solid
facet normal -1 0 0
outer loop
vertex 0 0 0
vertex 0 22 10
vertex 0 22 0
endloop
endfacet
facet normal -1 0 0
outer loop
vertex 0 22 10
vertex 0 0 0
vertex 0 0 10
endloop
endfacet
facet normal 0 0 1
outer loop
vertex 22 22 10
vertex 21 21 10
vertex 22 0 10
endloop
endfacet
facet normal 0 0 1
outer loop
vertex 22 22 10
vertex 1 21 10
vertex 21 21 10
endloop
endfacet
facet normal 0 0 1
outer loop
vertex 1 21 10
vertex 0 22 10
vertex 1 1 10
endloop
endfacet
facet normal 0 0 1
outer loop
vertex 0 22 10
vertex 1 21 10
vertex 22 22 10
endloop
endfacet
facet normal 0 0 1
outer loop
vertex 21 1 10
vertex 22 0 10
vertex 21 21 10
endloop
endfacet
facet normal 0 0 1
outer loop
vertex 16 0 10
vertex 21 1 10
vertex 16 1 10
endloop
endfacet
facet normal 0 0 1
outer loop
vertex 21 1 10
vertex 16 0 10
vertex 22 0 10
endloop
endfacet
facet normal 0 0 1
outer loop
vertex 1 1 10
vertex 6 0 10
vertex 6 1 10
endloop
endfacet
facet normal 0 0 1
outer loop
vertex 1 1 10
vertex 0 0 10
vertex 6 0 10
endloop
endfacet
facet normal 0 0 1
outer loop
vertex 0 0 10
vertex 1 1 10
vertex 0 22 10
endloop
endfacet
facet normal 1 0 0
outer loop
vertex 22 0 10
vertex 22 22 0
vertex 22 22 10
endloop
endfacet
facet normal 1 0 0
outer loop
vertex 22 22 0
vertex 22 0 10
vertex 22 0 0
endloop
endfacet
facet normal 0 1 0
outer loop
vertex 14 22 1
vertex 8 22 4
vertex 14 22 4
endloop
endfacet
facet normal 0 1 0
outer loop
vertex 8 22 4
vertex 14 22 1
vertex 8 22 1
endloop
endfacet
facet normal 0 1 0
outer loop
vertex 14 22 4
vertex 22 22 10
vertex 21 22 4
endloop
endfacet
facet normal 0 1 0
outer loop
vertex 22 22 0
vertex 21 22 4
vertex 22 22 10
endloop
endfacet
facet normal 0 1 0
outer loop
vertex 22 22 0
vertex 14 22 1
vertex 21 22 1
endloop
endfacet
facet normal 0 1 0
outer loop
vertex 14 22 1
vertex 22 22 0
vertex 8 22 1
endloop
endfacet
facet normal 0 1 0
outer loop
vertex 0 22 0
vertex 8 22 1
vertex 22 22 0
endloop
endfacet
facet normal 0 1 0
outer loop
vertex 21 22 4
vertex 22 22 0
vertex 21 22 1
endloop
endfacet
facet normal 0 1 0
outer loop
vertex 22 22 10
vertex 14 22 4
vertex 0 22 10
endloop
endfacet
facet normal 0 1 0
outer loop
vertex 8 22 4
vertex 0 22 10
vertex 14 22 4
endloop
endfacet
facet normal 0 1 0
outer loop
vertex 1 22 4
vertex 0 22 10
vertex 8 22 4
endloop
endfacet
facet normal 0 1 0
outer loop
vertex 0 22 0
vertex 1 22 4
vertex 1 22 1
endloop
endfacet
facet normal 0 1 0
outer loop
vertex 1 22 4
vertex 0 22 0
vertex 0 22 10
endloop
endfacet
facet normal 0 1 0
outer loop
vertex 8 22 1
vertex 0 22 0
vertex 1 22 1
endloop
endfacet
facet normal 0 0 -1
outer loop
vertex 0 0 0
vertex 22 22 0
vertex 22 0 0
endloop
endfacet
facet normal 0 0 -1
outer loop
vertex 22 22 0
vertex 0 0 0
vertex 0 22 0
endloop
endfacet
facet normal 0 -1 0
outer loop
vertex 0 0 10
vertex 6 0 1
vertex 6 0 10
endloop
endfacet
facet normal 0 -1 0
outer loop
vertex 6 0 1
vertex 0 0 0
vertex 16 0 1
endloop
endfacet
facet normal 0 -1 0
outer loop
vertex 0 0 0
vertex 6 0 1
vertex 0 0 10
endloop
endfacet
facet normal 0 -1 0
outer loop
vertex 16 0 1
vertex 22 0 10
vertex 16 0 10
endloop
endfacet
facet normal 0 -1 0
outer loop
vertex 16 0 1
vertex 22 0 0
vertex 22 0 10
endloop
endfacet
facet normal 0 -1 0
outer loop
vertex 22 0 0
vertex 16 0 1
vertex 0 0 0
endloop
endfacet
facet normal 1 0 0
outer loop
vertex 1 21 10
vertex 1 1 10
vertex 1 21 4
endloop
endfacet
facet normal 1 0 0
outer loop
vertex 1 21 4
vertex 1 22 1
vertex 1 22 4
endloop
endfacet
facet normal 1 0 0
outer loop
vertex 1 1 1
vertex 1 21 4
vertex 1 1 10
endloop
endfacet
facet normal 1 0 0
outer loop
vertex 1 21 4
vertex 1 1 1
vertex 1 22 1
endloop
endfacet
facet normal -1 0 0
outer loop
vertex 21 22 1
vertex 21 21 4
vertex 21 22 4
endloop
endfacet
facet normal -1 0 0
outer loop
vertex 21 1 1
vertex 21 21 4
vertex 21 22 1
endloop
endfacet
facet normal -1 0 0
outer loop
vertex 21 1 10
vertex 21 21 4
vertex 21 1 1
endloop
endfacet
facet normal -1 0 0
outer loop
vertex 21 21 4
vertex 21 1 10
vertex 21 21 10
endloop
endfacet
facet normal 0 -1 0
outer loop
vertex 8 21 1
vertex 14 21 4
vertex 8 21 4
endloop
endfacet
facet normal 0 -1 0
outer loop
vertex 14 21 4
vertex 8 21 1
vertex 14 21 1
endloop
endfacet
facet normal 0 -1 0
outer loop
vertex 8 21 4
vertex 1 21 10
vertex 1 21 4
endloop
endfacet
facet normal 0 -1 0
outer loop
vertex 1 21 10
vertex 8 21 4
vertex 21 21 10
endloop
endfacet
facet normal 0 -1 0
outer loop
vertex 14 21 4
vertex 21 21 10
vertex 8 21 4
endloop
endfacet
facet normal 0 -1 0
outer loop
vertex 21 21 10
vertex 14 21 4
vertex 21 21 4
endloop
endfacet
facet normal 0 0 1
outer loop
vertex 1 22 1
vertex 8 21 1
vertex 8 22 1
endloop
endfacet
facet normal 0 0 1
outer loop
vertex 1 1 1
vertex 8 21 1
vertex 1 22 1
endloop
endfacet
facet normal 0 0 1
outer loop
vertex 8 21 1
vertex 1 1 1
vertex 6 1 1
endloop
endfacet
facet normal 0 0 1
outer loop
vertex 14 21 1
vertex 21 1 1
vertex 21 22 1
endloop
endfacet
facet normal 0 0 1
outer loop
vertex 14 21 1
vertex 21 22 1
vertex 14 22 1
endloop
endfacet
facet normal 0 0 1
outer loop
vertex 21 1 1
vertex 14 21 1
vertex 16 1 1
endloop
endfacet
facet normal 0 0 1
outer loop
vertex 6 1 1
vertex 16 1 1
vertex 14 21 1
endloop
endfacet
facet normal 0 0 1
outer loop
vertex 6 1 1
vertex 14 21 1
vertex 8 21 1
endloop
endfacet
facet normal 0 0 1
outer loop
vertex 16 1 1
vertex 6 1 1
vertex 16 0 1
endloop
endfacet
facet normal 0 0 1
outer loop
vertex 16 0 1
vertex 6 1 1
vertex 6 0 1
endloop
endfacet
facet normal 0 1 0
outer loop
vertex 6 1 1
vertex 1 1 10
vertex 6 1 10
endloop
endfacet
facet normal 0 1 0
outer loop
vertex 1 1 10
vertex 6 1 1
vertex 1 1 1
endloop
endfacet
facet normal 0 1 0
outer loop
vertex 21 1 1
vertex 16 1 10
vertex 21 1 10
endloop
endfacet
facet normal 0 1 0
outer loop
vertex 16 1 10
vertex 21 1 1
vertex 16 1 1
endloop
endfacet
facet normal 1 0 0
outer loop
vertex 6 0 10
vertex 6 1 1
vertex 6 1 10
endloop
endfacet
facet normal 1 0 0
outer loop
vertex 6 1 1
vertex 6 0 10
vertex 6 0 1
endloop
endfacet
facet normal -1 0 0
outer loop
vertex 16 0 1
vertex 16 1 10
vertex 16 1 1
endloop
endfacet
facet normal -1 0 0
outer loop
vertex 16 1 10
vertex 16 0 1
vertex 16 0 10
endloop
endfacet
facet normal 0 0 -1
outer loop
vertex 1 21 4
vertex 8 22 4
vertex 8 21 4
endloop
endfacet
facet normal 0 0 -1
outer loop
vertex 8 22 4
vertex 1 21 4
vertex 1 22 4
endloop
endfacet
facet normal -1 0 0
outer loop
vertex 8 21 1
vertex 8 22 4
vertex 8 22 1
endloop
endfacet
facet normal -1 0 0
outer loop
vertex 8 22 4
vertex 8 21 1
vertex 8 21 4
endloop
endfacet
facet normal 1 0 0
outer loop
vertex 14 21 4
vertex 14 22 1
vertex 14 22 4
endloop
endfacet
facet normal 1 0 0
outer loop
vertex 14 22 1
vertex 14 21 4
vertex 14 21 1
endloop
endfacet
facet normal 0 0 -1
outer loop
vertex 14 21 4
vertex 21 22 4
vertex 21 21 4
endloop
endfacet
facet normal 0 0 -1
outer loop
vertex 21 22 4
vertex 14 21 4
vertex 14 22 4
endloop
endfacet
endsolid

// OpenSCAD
thickness=1;
width=20;
length=20;
height=9;
connector_hole_width=10;
sensor_height=3;
sensor_width=7;

difference() {
    cube([width + 2 * thickness, length + 2 * thickness, height + thickness]);
    translate([thickness, thickness, thickness]) cube([width, length, height]);
    translate([thickness + width / 2 - connector_hole_width / 2, 0, thickness]) cube([connector_hole_width, thickness, height]);
    translate([thickness, length + thickness, thickness]) cube([sensor_width, thickness, sensor_height]);
    translate([thickness + width - sensor_width, length + thickness, thickness]) cube([sensor_width, thickness, sensor_height]);
}
